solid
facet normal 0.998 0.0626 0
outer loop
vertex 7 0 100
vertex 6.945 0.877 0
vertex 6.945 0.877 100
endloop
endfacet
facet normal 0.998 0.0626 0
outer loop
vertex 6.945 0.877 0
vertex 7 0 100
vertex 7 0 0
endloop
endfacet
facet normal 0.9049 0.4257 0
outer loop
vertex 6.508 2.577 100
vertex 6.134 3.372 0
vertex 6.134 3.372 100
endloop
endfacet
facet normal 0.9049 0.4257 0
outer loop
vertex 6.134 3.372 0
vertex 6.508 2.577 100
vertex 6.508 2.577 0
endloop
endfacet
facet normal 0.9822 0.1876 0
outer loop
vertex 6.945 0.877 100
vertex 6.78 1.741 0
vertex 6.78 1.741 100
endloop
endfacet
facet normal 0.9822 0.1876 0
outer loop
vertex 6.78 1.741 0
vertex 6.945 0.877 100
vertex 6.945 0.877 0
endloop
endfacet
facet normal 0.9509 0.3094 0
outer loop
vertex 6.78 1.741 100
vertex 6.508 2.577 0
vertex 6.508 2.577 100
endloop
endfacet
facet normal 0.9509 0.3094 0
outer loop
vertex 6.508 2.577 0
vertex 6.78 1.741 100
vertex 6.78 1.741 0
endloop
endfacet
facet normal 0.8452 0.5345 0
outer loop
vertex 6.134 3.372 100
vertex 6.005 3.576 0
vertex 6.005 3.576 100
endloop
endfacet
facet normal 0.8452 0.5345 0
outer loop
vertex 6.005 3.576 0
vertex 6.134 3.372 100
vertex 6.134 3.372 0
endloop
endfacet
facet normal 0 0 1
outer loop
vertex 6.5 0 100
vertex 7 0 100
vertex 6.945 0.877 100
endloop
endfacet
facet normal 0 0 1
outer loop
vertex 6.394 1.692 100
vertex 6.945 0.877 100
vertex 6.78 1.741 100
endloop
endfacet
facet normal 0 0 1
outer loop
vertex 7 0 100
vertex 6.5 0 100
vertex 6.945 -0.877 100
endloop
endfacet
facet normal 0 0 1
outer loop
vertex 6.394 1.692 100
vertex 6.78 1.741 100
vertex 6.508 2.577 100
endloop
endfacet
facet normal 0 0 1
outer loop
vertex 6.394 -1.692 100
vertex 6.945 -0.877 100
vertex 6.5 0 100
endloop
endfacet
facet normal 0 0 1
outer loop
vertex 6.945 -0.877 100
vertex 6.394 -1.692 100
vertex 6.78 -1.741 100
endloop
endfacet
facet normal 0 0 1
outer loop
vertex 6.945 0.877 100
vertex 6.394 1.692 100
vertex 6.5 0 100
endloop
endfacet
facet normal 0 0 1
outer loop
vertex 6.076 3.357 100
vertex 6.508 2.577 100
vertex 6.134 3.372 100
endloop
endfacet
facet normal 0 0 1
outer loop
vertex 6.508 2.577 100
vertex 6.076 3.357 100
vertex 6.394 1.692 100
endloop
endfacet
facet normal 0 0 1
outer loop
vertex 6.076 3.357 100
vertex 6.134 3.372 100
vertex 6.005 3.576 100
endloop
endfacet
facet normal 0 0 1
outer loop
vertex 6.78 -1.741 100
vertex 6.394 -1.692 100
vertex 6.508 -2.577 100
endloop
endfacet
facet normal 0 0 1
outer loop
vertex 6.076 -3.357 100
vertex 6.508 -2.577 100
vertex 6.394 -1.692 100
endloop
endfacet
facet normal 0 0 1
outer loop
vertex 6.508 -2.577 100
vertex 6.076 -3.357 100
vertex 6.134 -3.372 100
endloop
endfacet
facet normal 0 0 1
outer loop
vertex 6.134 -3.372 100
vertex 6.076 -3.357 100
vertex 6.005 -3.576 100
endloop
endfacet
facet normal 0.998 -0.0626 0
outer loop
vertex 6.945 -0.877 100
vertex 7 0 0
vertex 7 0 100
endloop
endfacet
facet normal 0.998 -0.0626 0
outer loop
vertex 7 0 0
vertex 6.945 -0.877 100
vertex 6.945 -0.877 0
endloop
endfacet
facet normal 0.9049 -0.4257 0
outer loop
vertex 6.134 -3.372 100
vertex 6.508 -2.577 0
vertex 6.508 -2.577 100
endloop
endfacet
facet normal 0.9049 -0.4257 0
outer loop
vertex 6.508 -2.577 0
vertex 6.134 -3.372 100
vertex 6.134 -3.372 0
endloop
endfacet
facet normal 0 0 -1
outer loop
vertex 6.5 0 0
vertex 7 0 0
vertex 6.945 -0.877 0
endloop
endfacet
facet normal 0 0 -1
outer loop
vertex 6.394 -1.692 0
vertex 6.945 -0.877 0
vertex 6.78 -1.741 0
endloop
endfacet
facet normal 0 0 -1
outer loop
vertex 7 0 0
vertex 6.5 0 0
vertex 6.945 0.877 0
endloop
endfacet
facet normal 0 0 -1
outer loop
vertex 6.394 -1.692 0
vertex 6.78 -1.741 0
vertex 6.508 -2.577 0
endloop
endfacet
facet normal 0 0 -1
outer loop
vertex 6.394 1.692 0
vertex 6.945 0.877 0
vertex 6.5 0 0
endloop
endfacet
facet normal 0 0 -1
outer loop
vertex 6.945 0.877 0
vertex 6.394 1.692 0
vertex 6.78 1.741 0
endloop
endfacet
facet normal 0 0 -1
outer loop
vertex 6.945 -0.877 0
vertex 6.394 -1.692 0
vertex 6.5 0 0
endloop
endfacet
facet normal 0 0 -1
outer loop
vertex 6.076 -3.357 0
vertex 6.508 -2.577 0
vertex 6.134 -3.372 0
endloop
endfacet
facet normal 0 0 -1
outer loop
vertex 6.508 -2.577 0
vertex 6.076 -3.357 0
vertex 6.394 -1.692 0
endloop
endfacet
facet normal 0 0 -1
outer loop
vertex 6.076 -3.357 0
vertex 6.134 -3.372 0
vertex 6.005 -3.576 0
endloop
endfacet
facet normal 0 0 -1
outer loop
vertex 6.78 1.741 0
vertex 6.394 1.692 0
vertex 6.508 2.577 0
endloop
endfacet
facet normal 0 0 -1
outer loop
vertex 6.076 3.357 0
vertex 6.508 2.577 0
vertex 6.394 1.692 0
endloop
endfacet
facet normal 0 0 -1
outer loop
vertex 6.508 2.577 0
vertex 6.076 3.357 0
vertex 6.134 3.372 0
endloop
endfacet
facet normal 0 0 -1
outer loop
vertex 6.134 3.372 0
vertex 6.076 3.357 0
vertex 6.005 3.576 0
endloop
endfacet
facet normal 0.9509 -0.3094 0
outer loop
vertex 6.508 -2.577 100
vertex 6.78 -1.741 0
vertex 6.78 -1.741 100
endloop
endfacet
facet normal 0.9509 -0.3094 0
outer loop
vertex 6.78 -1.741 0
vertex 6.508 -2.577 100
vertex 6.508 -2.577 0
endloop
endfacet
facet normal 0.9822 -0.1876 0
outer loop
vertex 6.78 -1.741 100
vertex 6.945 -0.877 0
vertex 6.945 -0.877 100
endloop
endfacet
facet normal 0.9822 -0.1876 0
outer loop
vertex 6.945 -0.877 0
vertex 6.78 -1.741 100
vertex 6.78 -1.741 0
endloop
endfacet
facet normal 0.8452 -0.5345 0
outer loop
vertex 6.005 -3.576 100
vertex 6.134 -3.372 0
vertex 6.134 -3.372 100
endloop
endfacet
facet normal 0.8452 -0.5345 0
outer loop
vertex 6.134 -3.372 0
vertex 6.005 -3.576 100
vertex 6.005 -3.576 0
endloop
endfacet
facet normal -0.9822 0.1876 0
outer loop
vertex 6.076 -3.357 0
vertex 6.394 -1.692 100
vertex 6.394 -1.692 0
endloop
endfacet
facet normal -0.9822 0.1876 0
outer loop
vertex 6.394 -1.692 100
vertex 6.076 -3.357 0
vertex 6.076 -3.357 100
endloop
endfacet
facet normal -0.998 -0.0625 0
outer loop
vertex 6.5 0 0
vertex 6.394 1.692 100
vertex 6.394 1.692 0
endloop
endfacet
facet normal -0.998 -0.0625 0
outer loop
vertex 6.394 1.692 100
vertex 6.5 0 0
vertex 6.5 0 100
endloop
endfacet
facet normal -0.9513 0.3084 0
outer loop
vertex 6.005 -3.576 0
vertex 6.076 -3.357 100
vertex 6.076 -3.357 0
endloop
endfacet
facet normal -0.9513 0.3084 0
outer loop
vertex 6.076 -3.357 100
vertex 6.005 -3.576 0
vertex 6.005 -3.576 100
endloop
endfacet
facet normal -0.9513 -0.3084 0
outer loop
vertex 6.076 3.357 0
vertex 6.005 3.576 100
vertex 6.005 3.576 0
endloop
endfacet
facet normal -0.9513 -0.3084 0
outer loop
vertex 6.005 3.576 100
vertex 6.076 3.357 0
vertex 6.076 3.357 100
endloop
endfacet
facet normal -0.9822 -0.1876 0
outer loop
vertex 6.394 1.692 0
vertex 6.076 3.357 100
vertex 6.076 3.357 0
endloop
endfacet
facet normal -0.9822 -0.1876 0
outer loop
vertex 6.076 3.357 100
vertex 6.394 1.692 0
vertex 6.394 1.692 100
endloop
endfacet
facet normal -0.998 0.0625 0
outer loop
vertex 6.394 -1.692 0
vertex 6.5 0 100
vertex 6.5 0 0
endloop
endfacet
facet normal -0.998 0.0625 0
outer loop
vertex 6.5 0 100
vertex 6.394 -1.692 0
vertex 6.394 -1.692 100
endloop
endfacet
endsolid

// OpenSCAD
$fn = 50;


difference() {
	union() {
		cylinder(h = 100, r = 7.0000000000);
		translate(v = [-10.0000000000, 0, 0]) {
			cylinder(h = 100, r = 7.0000000000);
		}
	}
	union() {
		cylinder(h = 100, r = 3.2500000000);
		cylinder(h = 100, r = 1.8000000000);
		cylinder(h = 100, r = 1.8000000000);
		cylinder(h = 100, r = 1.8000000000);
		translate(v = [-14.5000000000, 0, 0]) {
			hull() {
				translate(v = [-3.7500000000, 0.0000000000, 0]) {
					cylinder(h = 100, r = 10.5000000000);
				}
				translate(v = [3.7500000000, 0.0000000000, 0]) {
					cylinder(h = 100, r = 10.5000000000);
				}
				translate(v = [-3.7500000000, -0.0000000000, 0]) {
					cylinder(h = 100, r = 10.5000000000);
				}
				translate(v = [3.7500000000, -0.0000000000, 0]) {
					cylinder(h = 100, r = 10.5000000000);
				}
			}
		}
		translate(v = [-7.0000000000, 0, 0.0000000000]) {
			cylinder(h = 100, r = 13.5000000000);
		}
	}
}
